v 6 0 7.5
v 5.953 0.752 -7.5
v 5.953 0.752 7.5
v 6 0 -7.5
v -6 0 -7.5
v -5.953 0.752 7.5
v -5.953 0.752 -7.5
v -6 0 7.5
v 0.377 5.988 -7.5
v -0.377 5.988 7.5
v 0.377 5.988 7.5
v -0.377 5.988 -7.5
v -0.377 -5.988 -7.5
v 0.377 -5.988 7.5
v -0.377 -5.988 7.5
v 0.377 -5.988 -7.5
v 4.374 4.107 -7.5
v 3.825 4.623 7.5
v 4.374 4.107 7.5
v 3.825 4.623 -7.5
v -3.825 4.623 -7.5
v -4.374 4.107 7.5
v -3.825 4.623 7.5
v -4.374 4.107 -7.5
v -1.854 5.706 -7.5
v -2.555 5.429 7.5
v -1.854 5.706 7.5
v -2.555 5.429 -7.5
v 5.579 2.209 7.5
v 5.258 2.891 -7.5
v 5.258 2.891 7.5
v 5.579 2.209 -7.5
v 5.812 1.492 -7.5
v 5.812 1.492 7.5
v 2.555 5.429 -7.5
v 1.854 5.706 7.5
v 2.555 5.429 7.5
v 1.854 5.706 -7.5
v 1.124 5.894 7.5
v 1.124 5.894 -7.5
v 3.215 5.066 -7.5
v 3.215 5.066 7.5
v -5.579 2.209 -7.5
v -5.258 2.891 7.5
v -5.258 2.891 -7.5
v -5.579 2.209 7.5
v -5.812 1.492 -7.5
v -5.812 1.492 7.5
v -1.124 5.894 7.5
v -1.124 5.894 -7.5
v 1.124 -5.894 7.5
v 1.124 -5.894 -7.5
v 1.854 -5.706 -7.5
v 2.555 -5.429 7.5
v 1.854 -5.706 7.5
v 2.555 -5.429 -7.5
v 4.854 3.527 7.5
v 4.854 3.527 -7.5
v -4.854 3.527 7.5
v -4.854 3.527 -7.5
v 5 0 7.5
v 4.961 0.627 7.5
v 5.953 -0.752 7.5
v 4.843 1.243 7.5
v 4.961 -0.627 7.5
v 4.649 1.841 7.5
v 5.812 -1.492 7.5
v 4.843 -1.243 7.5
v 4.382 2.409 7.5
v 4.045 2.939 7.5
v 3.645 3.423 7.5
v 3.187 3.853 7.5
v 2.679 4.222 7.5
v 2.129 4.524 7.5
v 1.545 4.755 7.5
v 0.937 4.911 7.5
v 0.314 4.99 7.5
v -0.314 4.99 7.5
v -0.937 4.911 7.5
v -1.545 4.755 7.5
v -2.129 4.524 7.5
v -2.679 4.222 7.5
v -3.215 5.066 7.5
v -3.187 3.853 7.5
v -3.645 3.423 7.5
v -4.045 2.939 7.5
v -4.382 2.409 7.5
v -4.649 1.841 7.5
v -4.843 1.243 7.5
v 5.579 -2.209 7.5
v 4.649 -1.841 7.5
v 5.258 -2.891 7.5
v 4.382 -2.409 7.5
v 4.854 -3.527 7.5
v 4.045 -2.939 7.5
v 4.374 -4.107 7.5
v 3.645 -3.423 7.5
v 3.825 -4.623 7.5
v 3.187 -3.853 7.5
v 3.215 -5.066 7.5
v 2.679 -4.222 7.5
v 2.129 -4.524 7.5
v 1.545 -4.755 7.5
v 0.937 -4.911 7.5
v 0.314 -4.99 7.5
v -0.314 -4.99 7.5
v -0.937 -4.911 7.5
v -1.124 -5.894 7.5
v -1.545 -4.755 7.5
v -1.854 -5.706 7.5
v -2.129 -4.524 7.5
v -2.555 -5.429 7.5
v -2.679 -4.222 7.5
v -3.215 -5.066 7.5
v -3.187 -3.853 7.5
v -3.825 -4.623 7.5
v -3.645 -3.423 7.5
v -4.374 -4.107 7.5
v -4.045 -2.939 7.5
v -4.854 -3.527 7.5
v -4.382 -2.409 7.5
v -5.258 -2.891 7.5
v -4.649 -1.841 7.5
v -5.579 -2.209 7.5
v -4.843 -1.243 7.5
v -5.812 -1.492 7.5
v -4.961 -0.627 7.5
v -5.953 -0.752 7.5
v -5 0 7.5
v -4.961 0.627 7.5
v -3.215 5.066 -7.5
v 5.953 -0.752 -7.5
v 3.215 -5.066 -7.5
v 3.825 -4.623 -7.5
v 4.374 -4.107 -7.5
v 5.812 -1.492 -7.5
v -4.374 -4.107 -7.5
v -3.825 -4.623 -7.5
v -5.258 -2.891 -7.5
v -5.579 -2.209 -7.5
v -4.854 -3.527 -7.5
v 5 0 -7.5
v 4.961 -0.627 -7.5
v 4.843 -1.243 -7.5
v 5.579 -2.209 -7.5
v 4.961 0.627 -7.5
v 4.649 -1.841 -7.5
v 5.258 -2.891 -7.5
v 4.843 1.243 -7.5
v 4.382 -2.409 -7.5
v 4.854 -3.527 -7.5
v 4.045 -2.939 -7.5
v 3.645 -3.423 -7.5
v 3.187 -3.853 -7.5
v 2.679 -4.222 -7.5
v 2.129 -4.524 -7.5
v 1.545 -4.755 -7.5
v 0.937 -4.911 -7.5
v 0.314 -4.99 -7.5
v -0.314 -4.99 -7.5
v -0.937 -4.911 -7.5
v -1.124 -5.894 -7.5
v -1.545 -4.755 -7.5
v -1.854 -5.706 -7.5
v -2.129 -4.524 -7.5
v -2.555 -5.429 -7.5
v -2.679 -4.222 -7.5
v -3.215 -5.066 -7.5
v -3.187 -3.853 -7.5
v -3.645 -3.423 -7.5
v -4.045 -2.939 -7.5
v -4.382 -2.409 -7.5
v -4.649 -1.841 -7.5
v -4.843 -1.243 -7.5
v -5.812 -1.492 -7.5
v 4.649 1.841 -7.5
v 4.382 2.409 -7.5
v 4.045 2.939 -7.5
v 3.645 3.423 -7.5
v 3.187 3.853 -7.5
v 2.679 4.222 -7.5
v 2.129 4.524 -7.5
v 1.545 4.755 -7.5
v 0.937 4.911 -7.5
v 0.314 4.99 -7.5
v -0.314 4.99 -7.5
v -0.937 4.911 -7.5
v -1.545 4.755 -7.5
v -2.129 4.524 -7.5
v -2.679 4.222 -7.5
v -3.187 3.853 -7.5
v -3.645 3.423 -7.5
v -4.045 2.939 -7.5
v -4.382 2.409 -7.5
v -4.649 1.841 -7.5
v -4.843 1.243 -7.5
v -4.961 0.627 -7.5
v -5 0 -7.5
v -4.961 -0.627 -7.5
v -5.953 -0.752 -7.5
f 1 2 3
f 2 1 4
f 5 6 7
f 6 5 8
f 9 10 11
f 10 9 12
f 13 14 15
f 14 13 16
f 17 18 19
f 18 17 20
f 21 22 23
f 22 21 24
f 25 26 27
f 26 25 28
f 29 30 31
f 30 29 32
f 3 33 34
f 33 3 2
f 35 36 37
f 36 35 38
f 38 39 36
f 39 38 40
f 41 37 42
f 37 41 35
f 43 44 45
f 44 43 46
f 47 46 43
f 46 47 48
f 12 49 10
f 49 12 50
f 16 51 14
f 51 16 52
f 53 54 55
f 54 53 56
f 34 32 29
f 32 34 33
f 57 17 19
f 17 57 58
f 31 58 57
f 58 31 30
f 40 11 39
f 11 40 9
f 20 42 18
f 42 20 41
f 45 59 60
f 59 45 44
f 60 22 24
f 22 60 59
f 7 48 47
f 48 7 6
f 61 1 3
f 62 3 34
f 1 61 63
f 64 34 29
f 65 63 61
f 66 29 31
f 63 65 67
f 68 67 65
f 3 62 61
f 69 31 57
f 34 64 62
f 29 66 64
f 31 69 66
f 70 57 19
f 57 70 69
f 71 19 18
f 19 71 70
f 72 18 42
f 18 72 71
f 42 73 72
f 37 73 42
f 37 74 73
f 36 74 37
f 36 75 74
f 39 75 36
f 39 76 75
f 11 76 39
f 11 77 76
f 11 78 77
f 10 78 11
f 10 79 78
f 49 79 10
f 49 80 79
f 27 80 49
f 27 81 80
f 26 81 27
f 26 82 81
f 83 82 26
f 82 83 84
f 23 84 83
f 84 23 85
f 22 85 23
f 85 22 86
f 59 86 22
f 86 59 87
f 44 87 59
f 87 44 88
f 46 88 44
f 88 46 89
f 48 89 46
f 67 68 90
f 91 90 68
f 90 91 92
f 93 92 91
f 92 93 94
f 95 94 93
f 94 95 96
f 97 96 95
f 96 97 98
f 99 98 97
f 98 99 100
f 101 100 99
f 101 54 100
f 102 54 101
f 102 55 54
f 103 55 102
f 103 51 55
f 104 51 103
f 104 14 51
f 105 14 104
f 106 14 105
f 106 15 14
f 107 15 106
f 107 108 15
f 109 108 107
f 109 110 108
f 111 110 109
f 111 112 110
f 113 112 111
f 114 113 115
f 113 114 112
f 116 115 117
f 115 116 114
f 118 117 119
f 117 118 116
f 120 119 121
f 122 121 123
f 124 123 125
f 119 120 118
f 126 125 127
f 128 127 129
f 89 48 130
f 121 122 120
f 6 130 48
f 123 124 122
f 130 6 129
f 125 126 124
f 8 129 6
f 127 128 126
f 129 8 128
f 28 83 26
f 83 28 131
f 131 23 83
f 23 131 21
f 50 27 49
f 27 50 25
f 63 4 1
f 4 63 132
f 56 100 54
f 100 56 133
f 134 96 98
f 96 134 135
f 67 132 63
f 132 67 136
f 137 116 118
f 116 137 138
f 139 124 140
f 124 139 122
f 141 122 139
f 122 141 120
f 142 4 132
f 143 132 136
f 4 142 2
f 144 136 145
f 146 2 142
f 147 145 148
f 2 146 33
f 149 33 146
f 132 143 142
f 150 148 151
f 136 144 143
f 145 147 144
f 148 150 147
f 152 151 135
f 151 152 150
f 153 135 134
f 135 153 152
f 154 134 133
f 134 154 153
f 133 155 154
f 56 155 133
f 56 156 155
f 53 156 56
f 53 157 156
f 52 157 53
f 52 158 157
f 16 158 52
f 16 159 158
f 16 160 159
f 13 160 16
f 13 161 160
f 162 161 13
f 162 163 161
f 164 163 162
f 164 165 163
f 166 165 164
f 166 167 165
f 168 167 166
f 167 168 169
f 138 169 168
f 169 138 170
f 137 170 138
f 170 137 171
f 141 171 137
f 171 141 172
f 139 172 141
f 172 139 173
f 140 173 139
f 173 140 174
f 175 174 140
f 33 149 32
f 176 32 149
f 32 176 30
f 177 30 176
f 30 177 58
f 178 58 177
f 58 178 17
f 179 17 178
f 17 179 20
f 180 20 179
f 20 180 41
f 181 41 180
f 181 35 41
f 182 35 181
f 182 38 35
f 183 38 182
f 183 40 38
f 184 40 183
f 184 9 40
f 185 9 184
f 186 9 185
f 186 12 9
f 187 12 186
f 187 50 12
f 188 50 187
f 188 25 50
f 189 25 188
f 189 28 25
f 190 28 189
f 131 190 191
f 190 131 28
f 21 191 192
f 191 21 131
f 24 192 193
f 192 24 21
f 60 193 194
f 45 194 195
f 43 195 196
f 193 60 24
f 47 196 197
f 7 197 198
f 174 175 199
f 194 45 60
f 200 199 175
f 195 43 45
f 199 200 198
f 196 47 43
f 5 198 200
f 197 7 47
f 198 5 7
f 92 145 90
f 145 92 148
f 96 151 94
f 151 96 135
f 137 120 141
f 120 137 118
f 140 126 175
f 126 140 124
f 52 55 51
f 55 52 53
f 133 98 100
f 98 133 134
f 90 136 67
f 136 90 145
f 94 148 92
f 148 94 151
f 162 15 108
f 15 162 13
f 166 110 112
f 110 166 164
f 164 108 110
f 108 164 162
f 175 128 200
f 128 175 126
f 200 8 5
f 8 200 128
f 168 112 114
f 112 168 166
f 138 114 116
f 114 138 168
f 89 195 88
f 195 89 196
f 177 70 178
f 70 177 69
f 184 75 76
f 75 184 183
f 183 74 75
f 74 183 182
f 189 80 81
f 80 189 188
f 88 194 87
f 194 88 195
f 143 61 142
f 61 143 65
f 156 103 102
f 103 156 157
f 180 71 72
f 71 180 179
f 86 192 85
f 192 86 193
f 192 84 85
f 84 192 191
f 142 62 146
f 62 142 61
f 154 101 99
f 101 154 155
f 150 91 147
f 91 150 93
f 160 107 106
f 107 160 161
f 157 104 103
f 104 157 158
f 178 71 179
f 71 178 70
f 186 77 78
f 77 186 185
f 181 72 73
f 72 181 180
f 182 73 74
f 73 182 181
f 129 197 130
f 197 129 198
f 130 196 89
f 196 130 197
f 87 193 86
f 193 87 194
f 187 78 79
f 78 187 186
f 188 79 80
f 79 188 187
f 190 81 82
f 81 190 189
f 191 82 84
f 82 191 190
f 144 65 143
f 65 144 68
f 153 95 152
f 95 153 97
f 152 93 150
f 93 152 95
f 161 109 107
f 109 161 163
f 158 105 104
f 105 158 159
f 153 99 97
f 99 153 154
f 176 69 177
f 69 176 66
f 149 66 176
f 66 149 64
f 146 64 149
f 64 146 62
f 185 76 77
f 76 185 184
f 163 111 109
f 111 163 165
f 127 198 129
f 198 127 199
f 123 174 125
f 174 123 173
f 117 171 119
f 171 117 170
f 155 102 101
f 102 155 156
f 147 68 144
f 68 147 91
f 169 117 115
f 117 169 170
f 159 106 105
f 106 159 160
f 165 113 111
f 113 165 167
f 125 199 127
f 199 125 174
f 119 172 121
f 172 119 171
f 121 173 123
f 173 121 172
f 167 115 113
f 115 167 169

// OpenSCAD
$fn = 50;


difference() {
	union() {
		translate(v = [0, 0, -7.5000000000]) {
			cylinder(h = 15, r = 6.0000000000);
		}
	}
	union() {
		translate(v = [0, 0, -100.0000000000]) {
			cylinder(h = 200, r = 5);
		}
	}
}
